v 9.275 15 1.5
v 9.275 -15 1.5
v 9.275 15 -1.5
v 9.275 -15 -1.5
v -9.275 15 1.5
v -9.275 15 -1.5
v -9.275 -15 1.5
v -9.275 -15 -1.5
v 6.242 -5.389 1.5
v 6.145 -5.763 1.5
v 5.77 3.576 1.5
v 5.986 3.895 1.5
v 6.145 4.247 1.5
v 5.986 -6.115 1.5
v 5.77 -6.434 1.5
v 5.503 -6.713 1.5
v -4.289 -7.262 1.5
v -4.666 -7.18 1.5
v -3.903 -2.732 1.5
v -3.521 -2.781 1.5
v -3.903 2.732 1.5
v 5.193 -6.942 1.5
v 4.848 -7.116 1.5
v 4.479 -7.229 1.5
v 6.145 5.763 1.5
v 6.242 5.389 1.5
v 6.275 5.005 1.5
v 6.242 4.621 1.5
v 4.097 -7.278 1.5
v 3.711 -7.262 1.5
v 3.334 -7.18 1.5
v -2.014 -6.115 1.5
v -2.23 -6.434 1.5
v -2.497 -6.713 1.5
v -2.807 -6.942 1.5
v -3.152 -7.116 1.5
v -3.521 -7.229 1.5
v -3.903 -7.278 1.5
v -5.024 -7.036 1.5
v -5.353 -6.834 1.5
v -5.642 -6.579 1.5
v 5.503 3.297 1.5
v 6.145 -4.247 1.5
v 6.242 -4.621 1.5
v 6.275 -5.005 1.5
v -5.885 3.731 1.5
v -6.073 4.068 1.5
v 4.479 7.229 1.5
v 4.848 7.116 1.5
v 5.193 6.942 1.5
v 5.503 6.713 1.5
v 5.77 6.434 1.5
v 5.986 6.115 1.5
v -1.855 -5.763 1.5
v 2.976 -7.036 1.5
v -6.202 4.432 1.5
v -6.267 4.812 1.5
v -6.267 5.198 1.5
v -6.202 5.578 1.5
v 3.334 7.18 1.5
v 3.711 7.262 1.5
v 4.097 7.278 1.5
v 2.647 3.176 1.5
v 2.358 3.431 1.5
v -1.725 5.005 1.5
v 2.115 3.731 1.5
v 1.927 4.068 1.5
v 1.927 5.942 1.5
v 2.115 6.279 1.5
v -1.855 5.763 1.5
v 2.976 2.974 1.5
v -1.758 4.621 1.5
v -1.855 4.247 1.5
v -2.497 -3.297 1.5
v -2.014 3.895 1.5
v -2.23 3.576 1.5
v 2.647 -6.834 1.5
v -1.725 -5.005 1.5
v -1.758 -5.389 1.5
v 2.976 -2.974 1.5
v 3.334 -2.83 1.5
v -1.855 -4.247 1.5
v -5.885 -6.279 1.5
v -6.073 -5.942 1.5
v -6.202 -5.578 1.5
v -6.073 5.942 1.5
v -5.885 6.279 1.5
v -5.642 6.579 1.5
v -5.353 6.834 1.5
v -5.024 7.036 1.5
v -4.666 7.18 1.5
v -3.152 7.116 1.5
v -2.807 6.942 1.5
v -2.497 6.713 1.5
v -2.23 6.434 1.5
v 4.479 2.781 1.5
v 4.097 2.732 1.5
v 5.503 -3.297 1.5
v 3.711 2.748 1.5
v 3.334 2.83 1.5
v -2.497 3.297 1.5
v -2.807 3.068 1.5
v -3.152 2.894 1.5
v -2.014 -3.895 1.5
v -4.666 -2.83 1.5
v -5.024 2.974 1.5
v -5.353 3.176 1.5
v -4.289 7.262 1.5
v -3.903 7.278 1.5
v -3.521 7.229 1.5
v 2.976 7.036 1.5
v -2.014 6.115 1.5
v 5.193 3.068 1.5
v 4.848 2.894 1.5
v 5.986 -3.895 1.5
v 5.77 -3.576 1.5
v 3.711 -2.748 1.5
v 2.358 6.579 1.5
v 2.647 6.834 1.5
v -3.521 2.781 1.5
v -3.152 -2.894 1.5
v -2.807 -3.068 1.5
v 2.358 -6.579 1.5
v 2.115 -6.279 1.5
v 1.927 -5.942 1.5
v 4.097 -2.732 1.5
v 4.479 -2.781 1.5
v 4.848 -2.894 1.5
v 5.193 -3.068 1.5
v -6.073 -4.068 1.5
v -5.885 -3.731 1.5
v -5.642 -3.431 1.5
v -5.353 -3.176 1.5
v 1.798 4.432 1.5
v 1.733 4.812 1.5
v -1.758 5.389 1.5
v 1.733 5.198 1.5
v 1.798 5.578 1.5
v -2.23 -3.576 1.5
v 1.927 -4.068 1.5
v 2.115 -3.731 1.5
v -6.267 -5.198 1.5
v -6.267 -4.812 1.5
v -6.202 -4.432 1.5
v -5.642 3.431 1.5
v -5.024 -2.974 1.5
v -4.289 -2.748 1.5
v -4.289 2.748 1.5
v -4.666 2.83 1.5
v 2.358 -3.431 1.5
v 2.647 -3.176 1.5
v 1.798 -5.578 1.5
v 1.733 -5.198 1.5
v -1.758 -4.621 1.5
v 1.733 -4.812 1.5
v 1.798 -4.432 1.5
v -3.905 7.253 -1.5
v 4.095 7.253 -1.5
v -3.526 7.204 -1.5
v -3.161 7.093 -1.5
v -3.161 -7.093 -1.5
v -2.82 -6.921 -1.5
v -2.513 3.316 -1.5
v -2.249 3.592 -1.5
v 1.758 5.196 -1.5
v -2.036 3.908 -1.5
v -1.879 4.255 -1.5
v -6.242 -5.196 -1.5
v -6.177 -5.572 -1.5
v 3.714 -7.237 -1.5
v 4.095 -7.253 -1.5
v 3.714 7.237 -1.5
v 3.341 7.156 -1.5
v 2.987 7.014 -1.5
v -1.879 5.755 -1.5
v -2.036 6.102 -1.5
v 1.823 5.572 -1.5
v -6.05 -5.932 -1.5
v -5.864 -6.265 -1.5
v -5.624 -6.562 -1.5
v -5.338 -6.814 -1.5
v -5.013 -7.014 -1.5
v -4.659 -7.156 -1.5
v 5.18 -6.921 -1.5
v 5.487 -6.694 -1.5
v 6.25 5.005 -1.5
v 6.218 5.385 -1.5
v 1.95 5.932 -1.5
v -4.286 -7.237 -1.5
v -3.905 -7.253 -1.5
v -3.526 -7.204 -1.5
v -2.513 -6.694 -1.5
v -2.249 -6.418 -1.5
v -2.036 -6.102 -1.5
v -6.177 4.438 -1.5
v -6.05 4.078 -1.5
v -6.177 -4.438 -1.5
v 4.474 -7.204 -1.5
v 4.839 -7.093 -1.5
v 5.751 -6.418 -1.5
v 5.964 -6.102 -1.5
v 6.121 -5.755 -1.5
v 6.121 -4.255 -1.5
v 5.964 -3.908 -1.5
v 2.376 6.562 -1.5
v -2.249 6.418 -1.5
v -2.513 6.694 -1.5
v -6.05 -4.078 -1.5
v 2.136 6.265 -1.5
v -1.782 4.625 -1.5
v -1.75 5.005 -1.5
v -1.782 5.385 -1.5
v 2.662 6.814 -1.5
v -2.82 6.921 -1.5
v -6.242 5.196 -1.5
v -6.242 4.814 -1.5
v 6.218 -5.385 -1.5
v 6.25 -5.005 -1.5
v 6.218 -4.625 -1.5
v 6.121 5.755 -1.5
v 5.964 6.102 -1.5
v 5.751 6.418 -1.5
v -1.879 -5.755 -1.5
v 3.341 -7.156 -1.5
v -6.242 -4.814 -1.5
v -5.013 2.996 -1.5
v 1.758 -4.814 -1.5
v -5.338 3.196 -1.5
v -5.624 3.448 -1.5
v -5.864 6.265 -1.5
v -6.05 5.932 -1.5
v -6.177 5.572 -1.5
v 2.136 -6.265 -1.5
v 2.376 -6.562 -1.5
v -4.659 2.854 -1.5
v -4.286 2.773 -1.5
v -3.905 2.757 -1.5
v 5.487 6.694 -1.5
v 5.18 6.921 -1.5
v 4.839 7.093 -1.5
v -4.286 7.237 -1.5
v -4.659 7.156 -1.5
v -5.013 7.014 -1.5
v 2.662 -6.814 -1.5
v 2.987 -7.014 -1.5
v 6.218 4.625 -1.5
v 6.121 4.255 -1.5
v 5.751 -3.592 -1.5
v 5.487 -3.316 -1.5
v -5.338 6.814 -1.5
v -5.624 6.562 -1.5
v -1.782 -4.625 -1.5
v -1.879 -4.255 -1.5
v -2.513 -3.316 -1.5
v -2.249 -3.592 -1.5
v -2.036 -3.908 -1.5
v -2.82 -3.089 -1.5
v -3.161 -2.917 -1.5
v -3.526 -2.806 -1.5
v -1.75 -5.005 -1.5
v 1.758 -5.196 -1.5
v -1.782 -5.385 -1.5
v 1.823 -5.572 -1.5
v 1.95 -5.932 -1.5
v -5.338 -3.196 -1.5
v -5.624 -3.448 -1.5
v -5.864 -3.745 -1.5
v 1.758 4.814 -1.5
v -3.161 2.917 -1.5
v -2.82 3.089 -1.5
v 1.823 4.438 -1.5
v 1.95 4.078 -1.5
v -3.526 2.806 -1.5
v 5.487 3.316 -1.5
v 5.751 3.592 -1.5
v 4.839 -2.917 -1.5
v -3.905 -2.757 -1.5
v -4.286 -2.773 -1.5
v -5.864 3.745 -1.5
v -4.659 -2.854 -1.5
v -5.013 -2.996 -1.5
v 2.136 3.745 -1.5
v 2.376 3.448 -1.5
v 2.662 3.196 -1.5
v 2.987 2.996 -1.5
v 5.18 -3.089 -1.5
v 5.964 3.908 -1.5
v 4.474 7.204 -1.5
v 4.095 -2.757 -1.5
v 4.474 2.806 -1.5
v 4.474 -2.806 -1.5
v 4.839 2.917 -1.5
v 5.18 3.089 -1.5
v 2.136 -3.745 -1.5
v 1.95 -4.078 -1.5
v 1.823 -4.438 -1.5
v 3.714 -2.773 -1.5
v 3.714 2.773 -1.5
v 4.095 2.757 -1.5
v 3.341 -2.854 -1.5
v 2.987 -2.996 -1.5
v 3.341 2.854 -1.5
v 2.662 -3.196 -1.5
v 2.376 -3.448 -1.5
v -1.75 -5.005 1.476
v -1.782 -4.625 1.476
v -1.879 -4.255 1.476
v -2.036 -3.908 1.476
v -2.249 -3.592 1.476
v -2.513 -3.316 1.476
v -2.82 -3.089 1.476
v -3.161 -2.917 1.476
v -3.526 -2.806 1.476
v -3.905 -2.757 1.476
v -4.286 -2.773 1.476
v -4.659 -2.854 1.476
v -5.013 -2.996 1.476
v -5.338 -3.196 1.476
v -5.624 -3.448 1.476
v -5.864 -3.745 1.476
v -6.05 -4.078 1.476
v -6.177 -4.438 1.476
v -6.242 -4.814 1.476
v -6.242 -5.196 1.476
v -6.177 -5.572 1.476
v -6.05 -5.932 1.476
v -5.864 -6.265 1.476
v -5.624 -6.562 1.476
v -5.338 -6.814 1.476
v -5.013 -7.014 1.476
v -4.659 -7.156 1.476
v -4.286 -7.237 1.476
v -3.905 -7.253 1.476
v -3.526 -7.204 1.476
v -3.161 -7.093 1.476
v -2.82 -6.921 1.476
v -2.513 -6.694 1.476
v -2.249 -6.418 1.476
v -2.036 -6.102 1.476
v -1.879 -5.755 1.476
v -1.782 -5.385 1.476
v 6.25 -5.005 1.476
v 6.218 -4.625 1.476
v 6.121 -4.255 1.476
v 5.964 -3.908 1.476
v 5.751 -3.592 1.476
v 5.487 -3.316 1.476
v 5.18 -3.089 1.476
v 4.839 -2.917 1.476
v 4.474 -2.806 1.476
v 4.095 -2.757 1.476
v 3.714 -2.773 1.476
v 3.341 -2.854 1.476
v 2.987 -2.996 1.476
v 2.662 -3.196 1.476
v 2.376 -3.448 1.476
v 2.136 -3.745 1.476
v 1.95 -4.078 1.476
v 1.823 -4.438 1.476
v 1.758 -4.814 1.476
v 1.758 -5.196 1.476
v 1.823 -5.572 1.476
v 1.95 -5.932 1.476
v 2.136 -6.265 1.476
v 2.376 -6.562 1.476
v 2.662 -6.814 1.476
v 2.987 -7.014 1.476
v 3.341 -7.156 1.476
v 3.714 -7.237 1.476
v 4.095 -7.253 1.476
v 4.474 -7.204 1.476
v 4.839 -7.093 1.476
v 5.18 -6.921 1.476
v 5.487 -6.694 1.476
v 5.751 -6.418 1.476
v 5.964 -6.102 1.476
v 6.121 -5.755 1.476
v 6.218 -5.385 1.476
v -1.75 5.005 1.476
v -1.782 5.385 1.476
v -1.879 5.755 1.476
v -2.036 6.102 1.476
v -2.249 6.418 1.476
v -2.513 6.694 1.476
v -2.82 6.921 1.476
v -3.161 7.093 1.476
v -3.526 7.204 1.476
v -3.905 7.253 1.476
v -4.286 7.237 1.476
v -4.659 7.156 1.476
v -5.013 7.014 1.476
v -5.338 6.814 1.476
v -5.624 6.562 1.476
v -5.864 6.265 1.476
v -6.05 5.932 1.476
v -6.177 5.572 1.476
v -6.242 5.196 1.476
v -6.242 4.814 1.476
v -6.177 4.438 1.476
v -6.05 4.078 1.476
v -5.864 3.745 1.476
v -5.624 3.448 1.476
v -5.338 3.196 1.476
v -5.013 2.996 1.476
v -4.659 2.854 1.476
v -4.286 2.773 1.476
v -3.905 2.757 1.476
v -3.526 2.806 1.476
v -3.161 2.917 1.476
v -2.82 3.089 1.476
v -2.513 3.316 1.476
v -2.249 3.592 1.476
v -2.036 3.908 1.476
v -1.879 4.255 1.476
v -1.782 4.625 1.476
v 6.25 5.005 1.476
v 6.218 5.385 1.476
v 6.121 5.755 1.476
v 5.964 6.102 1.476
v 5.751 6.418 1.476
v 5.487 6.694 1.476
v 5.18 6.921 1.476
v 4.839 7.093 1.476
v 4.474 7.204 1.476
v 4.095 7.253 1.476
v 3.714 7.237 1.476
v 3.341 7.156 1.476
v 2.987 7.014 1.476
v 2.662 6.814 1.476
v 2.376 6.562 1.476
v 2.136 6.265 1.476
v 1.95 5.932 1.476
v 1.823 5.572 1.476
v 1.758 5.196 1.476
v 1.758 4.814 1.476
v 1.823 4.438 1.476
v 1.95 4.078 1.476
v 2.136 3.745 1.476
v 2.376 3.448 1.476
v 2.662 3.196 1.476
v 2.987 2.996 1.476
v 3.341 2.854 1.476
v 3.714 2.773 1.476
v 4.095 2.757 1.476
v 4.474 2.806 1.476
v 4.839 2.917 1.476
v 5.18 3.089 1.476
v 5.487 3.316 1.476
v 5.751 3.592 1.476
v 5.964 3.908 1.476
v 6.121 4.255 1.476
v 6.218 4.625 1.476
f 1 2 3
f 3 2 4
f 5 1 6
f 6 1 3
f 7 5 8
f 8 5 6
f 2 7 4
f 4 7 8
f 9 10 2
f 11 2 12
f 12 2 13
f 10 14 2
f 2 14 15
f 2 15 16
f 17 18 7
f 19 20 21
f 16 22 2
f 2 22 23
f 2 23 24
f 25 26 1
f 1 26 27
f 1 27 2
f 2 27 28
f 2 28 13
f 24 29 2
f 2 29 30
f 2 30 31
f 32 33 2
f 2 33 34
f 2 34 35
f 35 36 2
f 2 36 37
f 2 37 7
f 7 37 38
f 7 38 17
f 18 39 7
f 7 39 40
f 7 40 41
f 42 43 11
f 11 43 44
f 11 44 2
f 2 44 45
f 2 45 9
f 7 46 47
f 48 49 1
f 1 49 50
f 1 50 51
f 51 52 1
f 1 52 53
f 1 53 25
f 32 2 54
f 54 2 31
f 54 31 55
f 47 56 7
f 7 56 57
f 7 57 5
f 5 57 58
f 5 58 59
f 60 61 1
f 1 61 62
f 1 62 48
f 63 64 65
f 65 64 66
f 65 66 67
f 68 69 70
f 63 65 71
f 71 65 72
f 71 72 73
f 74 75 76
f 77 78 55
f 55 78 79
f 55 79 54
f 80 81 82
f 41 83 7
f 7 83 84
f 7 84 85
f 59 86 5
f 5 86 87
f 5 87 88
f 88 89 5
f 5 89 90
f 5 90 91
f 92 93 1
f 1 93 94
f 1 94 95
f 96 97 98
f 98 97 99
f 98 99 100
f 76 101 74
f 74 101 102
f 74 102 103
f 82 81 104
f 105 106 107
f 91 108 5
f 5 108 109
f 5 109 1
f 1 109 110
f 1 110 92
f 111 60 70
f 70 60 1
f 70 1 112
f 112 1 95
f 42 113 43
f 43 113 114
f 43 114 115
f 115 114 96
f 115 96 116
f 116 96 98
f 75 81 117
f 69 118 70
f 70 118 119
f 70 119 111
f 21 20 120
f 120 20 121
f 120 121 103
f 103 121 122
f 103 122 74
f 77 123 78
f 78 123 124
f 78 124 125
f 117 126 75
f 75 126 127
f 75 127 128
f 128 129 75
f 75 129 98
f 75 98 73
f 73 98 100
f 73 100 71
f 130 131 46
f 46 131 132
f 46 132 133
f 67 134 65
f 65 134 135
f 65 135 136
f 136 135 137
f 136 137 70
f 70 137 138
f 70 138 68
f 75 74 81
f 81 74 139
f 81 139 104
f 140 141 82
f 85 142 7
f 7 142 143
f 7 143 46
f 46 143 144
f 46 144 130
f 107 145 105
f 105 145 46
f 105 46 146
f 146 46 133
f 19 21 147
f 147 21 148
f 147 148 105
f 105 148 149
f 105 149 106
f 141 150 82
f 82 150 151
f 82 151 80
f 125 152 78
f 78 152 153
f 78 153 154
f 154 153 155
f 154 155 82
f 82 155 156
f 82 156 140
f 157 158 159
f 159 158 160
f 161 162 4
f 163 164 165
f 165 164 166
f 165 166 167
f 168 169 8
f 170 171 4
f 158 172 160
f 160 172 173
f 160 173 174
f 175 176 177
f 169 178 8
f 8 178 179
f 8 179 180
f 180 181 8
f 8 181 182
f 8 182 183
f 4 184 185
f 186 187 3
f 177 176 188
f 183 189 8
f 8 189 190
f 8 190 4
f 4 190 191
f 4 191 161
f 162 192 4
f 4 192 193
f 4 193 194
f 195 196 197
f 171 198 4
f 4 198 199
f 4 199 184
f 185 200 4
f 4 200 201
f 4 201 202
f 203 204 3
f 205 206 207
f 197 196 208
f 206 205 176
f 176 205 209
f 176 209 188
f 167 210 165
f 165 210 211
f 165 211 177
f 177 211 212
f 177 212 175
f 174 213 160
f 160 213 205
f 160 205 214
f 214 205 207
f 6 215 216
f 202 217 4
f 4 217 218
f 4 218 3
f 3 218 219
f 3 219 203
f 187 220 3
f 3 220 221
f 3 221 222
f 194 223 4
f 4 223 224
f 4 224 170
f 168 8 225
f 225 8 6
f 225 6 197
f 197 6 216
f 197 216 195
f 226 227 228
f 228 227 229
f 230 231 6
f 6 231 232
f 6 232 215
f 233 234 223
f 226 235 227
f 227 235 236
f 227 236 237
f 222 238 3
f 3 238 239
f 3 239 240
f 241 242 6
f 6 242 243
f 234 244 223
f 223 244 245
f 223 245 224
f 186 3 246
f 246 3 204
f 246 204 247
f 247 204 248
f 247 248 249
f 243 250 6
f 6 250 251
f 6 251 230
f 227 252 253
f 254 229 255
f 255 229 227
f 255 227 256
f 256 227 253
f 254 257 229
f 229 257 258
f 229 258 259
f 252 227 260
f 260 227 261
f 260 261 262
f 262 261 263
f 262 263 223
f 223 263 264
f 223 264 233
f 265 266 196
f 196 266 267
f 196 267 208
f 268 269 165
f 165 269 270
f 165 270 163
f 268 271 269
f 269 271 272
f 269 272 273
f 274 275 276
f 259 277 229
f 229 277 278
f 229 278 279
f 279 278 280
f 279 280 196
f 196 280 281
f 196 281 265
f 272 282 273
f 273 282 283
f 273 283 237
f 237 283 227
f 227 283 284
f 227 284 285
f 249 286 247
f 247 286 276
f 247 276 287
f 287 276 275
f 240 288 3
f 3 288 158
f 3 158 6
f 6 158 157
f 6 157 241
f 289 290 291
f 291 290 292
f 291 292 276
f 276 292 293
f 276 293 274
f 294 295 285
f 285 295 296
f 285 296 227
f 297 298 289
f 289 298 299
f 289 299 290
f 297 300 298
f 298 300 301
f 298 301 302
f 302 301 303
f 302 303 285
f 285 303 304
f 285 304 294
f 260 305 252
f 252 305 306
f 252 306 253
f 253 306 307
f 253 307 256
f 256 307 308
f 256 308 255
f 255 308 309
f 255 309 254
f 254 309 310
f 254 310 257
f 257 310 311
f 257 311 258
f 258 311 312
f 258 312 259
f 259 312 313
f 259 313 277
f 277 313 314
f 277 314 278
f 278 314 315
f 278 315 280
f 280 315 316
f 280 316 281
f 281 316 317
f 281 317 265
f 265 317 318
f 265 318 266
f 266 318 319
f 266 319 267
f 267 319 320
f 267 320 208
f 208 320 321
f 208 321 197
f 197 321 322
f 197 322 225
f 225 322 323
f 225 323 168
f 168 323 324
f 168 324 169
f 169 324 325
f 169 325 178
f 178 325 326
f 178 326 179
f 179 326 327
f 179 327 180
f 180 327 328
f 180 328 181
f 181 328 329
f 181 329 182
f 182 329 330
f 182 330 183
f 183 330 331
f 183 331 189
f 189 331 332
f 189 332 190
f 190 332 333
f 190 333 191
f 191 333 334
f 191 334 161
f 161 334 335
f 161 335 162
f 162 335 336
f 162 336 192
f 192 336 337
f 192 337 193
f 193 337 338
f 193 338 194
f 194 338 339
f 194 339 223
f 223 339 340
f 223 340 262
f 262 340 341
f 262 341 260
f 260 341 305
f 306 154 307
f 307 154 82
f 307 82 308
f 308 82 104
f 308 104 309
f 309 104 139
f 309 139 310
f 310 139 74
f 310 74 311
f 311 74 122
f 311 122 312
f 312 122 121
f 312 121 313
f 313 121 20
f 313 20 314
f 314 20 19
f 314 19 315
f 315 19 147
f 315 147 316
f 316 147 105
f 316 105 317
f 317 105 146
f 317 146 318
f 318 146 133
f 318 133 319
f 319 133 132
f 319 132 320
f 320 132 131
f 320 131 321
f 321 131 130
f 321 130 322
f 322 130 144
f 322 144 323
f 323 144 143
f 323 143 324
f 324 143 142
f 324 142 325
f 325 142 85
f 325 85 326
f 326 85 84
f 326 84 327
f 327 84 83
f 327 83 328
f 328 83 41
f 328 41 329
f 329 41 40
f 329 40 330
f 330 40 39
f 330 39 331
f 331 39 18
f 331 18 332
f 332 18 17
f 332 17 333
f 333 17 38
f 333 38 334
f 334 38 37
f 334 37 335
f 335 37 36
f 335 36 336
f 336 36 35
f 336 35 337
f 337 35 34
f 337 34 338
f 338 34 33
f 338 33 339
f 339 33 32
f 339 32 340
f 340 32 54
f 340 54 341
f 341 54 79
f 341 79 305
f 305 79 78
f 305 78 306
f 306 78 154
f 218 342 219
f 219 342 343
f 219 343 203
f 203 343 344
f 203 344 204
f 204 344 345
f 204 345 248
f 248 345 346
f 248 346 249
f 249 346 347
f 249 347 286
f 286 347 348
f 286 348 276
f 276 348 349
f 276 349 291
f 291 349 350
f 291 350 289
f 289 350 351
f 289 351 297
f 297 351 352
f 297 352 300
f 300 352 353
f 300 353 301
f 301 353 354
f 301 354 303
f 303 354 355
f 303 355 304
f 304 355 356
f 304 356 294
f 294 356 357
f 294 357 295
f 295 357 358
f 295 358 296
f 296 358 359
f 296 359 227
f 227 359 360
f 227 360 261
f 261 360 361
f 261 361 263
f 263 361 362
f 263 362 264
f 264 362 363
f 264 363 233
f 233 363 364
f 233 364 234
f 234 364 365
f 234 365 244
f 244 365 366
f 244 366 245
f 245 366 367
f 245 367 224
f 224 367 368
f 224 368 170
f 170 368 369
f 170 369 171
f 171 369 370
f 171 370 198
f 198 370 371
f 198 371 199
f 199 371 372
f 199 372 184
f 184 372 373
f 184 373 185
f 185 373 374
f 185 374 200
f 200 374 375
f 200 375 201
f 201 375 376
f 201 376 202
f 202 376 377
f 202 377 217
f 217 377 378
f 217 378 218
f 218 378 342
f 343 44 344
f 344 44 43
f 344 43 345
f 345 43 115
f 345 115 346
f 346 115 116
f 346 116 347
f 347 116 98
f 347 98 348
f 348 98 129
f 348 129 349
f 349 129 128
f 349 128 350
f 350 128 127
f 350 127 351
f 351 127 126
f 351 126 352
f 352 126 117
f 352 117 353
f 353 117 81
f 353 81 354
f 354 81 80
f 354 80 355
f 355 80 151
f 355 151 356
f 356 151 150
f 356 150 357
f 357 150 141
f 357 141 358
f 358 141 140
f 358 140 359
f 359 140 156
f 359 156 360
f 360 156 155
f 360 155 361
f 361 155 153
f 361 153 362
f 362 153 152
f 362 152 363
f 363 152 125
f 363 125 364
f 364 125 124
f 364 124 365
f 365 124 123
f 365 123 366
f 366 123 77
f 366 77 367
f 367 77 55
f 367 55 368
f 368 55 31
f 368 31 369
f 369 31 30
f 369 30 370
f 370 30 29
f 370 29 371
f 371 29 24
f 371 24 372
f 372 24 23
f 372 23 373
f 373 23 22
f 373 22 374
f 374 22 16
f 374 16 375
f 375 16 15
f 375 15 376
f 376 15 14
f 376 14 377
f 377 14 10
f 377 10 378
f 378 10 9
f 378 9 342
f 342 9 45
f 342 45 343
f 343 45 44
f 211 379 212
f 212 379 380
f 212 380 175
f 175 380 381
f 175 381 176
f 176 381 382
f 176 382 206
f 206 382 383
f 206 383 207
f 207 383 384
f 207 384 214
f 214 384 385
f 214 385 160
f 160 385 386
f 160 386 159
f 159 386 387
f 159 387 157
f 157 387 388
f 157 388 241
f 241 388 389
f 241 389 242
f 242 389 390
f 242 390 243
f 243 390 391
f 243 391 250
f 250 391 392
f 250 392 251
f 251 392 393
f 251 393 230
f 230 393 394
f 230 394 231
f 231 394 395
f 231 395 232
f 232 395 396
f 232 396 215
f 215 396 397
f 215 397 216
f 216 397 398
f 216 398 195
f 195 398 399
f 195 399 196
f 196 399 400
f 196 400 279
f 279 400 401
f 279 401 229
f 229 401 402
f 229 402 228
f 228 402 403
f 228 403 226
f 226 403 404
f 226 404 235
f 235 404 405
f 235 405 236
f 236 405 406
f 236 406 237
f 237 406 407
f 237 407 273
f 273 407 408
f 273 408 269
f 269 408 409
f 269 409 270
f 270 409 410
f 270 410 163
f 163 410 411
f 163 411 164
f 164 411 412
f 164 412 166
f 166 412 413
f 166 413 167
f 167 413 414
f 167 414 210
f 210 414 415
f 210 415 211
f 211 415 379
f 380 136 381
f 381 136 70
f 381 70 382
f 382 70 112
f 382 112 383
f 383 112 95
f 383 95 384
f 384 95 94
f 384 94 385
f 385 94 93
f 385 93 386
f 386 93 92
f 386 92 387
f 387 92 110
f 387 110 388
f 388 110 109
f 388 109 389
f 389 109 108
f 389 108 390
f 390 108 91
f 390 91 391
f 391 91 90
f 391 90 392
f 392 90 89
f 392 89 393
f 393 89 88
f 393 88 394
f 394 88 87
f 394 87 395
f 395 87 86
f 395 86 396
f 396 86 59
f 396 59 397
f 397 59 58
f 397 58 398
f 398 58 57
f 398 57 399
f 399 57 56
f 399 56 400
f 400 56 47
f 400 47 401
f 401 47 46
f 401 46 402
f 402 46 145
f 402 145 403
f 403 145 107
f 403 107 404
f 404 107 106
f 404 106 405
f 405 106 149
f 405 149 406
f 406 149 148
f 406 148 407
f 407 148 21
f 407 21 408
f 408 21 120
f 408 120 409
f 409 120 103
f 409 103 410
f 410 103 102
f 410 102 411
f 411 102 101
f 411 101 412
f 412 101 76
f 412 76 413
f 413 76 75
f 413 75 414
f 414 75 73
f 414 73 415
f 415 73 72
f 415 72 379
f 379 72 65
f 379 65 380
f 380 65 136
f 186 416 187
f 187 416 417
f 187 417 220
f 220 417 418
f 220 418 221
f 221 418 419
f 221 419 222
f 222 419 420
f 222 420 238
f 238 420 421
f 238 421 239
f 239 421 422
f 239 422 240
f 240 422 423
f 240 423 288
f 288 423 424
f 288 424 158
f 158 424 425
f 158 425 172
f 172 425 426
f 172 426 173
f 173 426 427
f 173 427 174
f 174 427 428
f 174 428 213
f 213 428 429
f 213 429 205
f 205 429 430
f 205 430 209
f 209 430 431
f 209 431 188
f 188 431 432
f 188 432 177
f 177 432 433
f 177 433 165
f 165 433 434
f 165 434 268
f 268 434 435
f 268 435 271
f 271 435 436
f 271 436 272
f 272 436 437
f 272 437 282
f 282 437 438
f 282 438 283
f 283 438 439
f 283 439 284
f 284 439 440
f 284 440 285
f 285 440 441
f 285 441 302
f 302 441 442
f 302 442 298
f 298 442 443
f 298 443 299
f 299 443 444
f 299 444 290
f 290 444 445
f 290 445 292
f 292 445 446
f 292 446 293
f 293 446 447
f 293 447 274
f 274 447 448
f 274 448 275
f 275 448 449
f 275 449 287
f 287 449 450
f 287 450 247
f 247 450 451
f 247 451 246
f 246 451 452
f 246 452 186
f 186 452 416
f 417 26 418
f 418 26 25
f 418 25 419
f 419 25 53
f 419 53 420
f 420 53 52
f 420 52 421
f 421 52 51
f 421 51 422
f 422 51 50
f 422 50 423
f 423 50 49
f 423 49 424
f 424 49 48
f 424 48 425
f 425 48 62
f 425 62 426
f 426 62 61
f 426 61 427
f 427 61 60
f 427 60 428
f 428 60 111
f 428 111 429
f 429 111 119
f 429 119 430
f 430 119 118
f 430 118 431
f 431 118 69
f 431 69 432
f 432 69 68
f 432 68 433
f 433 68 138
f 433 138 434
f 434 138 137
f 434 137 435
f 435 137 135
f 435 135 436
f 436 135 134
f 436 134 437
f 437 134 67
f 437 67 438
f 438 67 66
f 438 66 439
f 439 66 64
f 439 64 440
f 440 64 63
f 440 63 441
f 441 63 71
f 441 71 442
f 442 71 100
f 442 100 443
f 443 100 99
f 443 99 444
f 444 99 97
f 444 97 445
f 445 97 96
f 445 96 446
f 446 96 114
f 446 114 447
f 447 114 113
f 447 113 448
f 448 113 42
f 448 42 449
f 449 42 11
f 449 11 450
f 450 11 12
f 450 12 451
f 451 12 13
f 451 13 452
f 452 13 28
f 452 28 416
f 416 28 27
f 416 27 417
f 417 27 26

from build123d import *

# Parameters (mm, degrees)
SKETCH_1_W                   = 18.55
SKETCH_1_H                   = 30
EXTRUDE_1_DEPTH              = 1.5
HOLE_WIZARD_M4_1_D           = 4.5
HOLE_WIZARD_M4_1_DEPTH       = 3
HOLE_WIZARD_M4_1_CSINK_D     = 4.55
HOLE_WIZARD_M4_1_CSINK_ANGLE = 92


with BuildPart() as part:
    # 스케치1 → 보스-돌출1 (new body, symmetric)
    with BuildSketch(Plane.XY):
        Rectangle(SKETCH_1_W, SKETCH_1_H)
    extrude(amount=EXTRUDE_1_DEPTH, both=True)

    # M4 여유 구멍1
    with Locations(Plane.XY.offset(1.5)):
        with Locations((-4, -5.005), (4, 5.005), (-4, 5.005), (4, -5.005)):
            CounterSinkHole(HOLE_WIZARD_M4_1_D / 2, HOLE_WIZARD_M4_1_CSINK_D / 2, depth=HOLE_WIZARD_M4_1_DEPTH, counter_sink_angle=HOLE_WIZARD_M4_1_CSINK_ANGLE)


solid = part.part
